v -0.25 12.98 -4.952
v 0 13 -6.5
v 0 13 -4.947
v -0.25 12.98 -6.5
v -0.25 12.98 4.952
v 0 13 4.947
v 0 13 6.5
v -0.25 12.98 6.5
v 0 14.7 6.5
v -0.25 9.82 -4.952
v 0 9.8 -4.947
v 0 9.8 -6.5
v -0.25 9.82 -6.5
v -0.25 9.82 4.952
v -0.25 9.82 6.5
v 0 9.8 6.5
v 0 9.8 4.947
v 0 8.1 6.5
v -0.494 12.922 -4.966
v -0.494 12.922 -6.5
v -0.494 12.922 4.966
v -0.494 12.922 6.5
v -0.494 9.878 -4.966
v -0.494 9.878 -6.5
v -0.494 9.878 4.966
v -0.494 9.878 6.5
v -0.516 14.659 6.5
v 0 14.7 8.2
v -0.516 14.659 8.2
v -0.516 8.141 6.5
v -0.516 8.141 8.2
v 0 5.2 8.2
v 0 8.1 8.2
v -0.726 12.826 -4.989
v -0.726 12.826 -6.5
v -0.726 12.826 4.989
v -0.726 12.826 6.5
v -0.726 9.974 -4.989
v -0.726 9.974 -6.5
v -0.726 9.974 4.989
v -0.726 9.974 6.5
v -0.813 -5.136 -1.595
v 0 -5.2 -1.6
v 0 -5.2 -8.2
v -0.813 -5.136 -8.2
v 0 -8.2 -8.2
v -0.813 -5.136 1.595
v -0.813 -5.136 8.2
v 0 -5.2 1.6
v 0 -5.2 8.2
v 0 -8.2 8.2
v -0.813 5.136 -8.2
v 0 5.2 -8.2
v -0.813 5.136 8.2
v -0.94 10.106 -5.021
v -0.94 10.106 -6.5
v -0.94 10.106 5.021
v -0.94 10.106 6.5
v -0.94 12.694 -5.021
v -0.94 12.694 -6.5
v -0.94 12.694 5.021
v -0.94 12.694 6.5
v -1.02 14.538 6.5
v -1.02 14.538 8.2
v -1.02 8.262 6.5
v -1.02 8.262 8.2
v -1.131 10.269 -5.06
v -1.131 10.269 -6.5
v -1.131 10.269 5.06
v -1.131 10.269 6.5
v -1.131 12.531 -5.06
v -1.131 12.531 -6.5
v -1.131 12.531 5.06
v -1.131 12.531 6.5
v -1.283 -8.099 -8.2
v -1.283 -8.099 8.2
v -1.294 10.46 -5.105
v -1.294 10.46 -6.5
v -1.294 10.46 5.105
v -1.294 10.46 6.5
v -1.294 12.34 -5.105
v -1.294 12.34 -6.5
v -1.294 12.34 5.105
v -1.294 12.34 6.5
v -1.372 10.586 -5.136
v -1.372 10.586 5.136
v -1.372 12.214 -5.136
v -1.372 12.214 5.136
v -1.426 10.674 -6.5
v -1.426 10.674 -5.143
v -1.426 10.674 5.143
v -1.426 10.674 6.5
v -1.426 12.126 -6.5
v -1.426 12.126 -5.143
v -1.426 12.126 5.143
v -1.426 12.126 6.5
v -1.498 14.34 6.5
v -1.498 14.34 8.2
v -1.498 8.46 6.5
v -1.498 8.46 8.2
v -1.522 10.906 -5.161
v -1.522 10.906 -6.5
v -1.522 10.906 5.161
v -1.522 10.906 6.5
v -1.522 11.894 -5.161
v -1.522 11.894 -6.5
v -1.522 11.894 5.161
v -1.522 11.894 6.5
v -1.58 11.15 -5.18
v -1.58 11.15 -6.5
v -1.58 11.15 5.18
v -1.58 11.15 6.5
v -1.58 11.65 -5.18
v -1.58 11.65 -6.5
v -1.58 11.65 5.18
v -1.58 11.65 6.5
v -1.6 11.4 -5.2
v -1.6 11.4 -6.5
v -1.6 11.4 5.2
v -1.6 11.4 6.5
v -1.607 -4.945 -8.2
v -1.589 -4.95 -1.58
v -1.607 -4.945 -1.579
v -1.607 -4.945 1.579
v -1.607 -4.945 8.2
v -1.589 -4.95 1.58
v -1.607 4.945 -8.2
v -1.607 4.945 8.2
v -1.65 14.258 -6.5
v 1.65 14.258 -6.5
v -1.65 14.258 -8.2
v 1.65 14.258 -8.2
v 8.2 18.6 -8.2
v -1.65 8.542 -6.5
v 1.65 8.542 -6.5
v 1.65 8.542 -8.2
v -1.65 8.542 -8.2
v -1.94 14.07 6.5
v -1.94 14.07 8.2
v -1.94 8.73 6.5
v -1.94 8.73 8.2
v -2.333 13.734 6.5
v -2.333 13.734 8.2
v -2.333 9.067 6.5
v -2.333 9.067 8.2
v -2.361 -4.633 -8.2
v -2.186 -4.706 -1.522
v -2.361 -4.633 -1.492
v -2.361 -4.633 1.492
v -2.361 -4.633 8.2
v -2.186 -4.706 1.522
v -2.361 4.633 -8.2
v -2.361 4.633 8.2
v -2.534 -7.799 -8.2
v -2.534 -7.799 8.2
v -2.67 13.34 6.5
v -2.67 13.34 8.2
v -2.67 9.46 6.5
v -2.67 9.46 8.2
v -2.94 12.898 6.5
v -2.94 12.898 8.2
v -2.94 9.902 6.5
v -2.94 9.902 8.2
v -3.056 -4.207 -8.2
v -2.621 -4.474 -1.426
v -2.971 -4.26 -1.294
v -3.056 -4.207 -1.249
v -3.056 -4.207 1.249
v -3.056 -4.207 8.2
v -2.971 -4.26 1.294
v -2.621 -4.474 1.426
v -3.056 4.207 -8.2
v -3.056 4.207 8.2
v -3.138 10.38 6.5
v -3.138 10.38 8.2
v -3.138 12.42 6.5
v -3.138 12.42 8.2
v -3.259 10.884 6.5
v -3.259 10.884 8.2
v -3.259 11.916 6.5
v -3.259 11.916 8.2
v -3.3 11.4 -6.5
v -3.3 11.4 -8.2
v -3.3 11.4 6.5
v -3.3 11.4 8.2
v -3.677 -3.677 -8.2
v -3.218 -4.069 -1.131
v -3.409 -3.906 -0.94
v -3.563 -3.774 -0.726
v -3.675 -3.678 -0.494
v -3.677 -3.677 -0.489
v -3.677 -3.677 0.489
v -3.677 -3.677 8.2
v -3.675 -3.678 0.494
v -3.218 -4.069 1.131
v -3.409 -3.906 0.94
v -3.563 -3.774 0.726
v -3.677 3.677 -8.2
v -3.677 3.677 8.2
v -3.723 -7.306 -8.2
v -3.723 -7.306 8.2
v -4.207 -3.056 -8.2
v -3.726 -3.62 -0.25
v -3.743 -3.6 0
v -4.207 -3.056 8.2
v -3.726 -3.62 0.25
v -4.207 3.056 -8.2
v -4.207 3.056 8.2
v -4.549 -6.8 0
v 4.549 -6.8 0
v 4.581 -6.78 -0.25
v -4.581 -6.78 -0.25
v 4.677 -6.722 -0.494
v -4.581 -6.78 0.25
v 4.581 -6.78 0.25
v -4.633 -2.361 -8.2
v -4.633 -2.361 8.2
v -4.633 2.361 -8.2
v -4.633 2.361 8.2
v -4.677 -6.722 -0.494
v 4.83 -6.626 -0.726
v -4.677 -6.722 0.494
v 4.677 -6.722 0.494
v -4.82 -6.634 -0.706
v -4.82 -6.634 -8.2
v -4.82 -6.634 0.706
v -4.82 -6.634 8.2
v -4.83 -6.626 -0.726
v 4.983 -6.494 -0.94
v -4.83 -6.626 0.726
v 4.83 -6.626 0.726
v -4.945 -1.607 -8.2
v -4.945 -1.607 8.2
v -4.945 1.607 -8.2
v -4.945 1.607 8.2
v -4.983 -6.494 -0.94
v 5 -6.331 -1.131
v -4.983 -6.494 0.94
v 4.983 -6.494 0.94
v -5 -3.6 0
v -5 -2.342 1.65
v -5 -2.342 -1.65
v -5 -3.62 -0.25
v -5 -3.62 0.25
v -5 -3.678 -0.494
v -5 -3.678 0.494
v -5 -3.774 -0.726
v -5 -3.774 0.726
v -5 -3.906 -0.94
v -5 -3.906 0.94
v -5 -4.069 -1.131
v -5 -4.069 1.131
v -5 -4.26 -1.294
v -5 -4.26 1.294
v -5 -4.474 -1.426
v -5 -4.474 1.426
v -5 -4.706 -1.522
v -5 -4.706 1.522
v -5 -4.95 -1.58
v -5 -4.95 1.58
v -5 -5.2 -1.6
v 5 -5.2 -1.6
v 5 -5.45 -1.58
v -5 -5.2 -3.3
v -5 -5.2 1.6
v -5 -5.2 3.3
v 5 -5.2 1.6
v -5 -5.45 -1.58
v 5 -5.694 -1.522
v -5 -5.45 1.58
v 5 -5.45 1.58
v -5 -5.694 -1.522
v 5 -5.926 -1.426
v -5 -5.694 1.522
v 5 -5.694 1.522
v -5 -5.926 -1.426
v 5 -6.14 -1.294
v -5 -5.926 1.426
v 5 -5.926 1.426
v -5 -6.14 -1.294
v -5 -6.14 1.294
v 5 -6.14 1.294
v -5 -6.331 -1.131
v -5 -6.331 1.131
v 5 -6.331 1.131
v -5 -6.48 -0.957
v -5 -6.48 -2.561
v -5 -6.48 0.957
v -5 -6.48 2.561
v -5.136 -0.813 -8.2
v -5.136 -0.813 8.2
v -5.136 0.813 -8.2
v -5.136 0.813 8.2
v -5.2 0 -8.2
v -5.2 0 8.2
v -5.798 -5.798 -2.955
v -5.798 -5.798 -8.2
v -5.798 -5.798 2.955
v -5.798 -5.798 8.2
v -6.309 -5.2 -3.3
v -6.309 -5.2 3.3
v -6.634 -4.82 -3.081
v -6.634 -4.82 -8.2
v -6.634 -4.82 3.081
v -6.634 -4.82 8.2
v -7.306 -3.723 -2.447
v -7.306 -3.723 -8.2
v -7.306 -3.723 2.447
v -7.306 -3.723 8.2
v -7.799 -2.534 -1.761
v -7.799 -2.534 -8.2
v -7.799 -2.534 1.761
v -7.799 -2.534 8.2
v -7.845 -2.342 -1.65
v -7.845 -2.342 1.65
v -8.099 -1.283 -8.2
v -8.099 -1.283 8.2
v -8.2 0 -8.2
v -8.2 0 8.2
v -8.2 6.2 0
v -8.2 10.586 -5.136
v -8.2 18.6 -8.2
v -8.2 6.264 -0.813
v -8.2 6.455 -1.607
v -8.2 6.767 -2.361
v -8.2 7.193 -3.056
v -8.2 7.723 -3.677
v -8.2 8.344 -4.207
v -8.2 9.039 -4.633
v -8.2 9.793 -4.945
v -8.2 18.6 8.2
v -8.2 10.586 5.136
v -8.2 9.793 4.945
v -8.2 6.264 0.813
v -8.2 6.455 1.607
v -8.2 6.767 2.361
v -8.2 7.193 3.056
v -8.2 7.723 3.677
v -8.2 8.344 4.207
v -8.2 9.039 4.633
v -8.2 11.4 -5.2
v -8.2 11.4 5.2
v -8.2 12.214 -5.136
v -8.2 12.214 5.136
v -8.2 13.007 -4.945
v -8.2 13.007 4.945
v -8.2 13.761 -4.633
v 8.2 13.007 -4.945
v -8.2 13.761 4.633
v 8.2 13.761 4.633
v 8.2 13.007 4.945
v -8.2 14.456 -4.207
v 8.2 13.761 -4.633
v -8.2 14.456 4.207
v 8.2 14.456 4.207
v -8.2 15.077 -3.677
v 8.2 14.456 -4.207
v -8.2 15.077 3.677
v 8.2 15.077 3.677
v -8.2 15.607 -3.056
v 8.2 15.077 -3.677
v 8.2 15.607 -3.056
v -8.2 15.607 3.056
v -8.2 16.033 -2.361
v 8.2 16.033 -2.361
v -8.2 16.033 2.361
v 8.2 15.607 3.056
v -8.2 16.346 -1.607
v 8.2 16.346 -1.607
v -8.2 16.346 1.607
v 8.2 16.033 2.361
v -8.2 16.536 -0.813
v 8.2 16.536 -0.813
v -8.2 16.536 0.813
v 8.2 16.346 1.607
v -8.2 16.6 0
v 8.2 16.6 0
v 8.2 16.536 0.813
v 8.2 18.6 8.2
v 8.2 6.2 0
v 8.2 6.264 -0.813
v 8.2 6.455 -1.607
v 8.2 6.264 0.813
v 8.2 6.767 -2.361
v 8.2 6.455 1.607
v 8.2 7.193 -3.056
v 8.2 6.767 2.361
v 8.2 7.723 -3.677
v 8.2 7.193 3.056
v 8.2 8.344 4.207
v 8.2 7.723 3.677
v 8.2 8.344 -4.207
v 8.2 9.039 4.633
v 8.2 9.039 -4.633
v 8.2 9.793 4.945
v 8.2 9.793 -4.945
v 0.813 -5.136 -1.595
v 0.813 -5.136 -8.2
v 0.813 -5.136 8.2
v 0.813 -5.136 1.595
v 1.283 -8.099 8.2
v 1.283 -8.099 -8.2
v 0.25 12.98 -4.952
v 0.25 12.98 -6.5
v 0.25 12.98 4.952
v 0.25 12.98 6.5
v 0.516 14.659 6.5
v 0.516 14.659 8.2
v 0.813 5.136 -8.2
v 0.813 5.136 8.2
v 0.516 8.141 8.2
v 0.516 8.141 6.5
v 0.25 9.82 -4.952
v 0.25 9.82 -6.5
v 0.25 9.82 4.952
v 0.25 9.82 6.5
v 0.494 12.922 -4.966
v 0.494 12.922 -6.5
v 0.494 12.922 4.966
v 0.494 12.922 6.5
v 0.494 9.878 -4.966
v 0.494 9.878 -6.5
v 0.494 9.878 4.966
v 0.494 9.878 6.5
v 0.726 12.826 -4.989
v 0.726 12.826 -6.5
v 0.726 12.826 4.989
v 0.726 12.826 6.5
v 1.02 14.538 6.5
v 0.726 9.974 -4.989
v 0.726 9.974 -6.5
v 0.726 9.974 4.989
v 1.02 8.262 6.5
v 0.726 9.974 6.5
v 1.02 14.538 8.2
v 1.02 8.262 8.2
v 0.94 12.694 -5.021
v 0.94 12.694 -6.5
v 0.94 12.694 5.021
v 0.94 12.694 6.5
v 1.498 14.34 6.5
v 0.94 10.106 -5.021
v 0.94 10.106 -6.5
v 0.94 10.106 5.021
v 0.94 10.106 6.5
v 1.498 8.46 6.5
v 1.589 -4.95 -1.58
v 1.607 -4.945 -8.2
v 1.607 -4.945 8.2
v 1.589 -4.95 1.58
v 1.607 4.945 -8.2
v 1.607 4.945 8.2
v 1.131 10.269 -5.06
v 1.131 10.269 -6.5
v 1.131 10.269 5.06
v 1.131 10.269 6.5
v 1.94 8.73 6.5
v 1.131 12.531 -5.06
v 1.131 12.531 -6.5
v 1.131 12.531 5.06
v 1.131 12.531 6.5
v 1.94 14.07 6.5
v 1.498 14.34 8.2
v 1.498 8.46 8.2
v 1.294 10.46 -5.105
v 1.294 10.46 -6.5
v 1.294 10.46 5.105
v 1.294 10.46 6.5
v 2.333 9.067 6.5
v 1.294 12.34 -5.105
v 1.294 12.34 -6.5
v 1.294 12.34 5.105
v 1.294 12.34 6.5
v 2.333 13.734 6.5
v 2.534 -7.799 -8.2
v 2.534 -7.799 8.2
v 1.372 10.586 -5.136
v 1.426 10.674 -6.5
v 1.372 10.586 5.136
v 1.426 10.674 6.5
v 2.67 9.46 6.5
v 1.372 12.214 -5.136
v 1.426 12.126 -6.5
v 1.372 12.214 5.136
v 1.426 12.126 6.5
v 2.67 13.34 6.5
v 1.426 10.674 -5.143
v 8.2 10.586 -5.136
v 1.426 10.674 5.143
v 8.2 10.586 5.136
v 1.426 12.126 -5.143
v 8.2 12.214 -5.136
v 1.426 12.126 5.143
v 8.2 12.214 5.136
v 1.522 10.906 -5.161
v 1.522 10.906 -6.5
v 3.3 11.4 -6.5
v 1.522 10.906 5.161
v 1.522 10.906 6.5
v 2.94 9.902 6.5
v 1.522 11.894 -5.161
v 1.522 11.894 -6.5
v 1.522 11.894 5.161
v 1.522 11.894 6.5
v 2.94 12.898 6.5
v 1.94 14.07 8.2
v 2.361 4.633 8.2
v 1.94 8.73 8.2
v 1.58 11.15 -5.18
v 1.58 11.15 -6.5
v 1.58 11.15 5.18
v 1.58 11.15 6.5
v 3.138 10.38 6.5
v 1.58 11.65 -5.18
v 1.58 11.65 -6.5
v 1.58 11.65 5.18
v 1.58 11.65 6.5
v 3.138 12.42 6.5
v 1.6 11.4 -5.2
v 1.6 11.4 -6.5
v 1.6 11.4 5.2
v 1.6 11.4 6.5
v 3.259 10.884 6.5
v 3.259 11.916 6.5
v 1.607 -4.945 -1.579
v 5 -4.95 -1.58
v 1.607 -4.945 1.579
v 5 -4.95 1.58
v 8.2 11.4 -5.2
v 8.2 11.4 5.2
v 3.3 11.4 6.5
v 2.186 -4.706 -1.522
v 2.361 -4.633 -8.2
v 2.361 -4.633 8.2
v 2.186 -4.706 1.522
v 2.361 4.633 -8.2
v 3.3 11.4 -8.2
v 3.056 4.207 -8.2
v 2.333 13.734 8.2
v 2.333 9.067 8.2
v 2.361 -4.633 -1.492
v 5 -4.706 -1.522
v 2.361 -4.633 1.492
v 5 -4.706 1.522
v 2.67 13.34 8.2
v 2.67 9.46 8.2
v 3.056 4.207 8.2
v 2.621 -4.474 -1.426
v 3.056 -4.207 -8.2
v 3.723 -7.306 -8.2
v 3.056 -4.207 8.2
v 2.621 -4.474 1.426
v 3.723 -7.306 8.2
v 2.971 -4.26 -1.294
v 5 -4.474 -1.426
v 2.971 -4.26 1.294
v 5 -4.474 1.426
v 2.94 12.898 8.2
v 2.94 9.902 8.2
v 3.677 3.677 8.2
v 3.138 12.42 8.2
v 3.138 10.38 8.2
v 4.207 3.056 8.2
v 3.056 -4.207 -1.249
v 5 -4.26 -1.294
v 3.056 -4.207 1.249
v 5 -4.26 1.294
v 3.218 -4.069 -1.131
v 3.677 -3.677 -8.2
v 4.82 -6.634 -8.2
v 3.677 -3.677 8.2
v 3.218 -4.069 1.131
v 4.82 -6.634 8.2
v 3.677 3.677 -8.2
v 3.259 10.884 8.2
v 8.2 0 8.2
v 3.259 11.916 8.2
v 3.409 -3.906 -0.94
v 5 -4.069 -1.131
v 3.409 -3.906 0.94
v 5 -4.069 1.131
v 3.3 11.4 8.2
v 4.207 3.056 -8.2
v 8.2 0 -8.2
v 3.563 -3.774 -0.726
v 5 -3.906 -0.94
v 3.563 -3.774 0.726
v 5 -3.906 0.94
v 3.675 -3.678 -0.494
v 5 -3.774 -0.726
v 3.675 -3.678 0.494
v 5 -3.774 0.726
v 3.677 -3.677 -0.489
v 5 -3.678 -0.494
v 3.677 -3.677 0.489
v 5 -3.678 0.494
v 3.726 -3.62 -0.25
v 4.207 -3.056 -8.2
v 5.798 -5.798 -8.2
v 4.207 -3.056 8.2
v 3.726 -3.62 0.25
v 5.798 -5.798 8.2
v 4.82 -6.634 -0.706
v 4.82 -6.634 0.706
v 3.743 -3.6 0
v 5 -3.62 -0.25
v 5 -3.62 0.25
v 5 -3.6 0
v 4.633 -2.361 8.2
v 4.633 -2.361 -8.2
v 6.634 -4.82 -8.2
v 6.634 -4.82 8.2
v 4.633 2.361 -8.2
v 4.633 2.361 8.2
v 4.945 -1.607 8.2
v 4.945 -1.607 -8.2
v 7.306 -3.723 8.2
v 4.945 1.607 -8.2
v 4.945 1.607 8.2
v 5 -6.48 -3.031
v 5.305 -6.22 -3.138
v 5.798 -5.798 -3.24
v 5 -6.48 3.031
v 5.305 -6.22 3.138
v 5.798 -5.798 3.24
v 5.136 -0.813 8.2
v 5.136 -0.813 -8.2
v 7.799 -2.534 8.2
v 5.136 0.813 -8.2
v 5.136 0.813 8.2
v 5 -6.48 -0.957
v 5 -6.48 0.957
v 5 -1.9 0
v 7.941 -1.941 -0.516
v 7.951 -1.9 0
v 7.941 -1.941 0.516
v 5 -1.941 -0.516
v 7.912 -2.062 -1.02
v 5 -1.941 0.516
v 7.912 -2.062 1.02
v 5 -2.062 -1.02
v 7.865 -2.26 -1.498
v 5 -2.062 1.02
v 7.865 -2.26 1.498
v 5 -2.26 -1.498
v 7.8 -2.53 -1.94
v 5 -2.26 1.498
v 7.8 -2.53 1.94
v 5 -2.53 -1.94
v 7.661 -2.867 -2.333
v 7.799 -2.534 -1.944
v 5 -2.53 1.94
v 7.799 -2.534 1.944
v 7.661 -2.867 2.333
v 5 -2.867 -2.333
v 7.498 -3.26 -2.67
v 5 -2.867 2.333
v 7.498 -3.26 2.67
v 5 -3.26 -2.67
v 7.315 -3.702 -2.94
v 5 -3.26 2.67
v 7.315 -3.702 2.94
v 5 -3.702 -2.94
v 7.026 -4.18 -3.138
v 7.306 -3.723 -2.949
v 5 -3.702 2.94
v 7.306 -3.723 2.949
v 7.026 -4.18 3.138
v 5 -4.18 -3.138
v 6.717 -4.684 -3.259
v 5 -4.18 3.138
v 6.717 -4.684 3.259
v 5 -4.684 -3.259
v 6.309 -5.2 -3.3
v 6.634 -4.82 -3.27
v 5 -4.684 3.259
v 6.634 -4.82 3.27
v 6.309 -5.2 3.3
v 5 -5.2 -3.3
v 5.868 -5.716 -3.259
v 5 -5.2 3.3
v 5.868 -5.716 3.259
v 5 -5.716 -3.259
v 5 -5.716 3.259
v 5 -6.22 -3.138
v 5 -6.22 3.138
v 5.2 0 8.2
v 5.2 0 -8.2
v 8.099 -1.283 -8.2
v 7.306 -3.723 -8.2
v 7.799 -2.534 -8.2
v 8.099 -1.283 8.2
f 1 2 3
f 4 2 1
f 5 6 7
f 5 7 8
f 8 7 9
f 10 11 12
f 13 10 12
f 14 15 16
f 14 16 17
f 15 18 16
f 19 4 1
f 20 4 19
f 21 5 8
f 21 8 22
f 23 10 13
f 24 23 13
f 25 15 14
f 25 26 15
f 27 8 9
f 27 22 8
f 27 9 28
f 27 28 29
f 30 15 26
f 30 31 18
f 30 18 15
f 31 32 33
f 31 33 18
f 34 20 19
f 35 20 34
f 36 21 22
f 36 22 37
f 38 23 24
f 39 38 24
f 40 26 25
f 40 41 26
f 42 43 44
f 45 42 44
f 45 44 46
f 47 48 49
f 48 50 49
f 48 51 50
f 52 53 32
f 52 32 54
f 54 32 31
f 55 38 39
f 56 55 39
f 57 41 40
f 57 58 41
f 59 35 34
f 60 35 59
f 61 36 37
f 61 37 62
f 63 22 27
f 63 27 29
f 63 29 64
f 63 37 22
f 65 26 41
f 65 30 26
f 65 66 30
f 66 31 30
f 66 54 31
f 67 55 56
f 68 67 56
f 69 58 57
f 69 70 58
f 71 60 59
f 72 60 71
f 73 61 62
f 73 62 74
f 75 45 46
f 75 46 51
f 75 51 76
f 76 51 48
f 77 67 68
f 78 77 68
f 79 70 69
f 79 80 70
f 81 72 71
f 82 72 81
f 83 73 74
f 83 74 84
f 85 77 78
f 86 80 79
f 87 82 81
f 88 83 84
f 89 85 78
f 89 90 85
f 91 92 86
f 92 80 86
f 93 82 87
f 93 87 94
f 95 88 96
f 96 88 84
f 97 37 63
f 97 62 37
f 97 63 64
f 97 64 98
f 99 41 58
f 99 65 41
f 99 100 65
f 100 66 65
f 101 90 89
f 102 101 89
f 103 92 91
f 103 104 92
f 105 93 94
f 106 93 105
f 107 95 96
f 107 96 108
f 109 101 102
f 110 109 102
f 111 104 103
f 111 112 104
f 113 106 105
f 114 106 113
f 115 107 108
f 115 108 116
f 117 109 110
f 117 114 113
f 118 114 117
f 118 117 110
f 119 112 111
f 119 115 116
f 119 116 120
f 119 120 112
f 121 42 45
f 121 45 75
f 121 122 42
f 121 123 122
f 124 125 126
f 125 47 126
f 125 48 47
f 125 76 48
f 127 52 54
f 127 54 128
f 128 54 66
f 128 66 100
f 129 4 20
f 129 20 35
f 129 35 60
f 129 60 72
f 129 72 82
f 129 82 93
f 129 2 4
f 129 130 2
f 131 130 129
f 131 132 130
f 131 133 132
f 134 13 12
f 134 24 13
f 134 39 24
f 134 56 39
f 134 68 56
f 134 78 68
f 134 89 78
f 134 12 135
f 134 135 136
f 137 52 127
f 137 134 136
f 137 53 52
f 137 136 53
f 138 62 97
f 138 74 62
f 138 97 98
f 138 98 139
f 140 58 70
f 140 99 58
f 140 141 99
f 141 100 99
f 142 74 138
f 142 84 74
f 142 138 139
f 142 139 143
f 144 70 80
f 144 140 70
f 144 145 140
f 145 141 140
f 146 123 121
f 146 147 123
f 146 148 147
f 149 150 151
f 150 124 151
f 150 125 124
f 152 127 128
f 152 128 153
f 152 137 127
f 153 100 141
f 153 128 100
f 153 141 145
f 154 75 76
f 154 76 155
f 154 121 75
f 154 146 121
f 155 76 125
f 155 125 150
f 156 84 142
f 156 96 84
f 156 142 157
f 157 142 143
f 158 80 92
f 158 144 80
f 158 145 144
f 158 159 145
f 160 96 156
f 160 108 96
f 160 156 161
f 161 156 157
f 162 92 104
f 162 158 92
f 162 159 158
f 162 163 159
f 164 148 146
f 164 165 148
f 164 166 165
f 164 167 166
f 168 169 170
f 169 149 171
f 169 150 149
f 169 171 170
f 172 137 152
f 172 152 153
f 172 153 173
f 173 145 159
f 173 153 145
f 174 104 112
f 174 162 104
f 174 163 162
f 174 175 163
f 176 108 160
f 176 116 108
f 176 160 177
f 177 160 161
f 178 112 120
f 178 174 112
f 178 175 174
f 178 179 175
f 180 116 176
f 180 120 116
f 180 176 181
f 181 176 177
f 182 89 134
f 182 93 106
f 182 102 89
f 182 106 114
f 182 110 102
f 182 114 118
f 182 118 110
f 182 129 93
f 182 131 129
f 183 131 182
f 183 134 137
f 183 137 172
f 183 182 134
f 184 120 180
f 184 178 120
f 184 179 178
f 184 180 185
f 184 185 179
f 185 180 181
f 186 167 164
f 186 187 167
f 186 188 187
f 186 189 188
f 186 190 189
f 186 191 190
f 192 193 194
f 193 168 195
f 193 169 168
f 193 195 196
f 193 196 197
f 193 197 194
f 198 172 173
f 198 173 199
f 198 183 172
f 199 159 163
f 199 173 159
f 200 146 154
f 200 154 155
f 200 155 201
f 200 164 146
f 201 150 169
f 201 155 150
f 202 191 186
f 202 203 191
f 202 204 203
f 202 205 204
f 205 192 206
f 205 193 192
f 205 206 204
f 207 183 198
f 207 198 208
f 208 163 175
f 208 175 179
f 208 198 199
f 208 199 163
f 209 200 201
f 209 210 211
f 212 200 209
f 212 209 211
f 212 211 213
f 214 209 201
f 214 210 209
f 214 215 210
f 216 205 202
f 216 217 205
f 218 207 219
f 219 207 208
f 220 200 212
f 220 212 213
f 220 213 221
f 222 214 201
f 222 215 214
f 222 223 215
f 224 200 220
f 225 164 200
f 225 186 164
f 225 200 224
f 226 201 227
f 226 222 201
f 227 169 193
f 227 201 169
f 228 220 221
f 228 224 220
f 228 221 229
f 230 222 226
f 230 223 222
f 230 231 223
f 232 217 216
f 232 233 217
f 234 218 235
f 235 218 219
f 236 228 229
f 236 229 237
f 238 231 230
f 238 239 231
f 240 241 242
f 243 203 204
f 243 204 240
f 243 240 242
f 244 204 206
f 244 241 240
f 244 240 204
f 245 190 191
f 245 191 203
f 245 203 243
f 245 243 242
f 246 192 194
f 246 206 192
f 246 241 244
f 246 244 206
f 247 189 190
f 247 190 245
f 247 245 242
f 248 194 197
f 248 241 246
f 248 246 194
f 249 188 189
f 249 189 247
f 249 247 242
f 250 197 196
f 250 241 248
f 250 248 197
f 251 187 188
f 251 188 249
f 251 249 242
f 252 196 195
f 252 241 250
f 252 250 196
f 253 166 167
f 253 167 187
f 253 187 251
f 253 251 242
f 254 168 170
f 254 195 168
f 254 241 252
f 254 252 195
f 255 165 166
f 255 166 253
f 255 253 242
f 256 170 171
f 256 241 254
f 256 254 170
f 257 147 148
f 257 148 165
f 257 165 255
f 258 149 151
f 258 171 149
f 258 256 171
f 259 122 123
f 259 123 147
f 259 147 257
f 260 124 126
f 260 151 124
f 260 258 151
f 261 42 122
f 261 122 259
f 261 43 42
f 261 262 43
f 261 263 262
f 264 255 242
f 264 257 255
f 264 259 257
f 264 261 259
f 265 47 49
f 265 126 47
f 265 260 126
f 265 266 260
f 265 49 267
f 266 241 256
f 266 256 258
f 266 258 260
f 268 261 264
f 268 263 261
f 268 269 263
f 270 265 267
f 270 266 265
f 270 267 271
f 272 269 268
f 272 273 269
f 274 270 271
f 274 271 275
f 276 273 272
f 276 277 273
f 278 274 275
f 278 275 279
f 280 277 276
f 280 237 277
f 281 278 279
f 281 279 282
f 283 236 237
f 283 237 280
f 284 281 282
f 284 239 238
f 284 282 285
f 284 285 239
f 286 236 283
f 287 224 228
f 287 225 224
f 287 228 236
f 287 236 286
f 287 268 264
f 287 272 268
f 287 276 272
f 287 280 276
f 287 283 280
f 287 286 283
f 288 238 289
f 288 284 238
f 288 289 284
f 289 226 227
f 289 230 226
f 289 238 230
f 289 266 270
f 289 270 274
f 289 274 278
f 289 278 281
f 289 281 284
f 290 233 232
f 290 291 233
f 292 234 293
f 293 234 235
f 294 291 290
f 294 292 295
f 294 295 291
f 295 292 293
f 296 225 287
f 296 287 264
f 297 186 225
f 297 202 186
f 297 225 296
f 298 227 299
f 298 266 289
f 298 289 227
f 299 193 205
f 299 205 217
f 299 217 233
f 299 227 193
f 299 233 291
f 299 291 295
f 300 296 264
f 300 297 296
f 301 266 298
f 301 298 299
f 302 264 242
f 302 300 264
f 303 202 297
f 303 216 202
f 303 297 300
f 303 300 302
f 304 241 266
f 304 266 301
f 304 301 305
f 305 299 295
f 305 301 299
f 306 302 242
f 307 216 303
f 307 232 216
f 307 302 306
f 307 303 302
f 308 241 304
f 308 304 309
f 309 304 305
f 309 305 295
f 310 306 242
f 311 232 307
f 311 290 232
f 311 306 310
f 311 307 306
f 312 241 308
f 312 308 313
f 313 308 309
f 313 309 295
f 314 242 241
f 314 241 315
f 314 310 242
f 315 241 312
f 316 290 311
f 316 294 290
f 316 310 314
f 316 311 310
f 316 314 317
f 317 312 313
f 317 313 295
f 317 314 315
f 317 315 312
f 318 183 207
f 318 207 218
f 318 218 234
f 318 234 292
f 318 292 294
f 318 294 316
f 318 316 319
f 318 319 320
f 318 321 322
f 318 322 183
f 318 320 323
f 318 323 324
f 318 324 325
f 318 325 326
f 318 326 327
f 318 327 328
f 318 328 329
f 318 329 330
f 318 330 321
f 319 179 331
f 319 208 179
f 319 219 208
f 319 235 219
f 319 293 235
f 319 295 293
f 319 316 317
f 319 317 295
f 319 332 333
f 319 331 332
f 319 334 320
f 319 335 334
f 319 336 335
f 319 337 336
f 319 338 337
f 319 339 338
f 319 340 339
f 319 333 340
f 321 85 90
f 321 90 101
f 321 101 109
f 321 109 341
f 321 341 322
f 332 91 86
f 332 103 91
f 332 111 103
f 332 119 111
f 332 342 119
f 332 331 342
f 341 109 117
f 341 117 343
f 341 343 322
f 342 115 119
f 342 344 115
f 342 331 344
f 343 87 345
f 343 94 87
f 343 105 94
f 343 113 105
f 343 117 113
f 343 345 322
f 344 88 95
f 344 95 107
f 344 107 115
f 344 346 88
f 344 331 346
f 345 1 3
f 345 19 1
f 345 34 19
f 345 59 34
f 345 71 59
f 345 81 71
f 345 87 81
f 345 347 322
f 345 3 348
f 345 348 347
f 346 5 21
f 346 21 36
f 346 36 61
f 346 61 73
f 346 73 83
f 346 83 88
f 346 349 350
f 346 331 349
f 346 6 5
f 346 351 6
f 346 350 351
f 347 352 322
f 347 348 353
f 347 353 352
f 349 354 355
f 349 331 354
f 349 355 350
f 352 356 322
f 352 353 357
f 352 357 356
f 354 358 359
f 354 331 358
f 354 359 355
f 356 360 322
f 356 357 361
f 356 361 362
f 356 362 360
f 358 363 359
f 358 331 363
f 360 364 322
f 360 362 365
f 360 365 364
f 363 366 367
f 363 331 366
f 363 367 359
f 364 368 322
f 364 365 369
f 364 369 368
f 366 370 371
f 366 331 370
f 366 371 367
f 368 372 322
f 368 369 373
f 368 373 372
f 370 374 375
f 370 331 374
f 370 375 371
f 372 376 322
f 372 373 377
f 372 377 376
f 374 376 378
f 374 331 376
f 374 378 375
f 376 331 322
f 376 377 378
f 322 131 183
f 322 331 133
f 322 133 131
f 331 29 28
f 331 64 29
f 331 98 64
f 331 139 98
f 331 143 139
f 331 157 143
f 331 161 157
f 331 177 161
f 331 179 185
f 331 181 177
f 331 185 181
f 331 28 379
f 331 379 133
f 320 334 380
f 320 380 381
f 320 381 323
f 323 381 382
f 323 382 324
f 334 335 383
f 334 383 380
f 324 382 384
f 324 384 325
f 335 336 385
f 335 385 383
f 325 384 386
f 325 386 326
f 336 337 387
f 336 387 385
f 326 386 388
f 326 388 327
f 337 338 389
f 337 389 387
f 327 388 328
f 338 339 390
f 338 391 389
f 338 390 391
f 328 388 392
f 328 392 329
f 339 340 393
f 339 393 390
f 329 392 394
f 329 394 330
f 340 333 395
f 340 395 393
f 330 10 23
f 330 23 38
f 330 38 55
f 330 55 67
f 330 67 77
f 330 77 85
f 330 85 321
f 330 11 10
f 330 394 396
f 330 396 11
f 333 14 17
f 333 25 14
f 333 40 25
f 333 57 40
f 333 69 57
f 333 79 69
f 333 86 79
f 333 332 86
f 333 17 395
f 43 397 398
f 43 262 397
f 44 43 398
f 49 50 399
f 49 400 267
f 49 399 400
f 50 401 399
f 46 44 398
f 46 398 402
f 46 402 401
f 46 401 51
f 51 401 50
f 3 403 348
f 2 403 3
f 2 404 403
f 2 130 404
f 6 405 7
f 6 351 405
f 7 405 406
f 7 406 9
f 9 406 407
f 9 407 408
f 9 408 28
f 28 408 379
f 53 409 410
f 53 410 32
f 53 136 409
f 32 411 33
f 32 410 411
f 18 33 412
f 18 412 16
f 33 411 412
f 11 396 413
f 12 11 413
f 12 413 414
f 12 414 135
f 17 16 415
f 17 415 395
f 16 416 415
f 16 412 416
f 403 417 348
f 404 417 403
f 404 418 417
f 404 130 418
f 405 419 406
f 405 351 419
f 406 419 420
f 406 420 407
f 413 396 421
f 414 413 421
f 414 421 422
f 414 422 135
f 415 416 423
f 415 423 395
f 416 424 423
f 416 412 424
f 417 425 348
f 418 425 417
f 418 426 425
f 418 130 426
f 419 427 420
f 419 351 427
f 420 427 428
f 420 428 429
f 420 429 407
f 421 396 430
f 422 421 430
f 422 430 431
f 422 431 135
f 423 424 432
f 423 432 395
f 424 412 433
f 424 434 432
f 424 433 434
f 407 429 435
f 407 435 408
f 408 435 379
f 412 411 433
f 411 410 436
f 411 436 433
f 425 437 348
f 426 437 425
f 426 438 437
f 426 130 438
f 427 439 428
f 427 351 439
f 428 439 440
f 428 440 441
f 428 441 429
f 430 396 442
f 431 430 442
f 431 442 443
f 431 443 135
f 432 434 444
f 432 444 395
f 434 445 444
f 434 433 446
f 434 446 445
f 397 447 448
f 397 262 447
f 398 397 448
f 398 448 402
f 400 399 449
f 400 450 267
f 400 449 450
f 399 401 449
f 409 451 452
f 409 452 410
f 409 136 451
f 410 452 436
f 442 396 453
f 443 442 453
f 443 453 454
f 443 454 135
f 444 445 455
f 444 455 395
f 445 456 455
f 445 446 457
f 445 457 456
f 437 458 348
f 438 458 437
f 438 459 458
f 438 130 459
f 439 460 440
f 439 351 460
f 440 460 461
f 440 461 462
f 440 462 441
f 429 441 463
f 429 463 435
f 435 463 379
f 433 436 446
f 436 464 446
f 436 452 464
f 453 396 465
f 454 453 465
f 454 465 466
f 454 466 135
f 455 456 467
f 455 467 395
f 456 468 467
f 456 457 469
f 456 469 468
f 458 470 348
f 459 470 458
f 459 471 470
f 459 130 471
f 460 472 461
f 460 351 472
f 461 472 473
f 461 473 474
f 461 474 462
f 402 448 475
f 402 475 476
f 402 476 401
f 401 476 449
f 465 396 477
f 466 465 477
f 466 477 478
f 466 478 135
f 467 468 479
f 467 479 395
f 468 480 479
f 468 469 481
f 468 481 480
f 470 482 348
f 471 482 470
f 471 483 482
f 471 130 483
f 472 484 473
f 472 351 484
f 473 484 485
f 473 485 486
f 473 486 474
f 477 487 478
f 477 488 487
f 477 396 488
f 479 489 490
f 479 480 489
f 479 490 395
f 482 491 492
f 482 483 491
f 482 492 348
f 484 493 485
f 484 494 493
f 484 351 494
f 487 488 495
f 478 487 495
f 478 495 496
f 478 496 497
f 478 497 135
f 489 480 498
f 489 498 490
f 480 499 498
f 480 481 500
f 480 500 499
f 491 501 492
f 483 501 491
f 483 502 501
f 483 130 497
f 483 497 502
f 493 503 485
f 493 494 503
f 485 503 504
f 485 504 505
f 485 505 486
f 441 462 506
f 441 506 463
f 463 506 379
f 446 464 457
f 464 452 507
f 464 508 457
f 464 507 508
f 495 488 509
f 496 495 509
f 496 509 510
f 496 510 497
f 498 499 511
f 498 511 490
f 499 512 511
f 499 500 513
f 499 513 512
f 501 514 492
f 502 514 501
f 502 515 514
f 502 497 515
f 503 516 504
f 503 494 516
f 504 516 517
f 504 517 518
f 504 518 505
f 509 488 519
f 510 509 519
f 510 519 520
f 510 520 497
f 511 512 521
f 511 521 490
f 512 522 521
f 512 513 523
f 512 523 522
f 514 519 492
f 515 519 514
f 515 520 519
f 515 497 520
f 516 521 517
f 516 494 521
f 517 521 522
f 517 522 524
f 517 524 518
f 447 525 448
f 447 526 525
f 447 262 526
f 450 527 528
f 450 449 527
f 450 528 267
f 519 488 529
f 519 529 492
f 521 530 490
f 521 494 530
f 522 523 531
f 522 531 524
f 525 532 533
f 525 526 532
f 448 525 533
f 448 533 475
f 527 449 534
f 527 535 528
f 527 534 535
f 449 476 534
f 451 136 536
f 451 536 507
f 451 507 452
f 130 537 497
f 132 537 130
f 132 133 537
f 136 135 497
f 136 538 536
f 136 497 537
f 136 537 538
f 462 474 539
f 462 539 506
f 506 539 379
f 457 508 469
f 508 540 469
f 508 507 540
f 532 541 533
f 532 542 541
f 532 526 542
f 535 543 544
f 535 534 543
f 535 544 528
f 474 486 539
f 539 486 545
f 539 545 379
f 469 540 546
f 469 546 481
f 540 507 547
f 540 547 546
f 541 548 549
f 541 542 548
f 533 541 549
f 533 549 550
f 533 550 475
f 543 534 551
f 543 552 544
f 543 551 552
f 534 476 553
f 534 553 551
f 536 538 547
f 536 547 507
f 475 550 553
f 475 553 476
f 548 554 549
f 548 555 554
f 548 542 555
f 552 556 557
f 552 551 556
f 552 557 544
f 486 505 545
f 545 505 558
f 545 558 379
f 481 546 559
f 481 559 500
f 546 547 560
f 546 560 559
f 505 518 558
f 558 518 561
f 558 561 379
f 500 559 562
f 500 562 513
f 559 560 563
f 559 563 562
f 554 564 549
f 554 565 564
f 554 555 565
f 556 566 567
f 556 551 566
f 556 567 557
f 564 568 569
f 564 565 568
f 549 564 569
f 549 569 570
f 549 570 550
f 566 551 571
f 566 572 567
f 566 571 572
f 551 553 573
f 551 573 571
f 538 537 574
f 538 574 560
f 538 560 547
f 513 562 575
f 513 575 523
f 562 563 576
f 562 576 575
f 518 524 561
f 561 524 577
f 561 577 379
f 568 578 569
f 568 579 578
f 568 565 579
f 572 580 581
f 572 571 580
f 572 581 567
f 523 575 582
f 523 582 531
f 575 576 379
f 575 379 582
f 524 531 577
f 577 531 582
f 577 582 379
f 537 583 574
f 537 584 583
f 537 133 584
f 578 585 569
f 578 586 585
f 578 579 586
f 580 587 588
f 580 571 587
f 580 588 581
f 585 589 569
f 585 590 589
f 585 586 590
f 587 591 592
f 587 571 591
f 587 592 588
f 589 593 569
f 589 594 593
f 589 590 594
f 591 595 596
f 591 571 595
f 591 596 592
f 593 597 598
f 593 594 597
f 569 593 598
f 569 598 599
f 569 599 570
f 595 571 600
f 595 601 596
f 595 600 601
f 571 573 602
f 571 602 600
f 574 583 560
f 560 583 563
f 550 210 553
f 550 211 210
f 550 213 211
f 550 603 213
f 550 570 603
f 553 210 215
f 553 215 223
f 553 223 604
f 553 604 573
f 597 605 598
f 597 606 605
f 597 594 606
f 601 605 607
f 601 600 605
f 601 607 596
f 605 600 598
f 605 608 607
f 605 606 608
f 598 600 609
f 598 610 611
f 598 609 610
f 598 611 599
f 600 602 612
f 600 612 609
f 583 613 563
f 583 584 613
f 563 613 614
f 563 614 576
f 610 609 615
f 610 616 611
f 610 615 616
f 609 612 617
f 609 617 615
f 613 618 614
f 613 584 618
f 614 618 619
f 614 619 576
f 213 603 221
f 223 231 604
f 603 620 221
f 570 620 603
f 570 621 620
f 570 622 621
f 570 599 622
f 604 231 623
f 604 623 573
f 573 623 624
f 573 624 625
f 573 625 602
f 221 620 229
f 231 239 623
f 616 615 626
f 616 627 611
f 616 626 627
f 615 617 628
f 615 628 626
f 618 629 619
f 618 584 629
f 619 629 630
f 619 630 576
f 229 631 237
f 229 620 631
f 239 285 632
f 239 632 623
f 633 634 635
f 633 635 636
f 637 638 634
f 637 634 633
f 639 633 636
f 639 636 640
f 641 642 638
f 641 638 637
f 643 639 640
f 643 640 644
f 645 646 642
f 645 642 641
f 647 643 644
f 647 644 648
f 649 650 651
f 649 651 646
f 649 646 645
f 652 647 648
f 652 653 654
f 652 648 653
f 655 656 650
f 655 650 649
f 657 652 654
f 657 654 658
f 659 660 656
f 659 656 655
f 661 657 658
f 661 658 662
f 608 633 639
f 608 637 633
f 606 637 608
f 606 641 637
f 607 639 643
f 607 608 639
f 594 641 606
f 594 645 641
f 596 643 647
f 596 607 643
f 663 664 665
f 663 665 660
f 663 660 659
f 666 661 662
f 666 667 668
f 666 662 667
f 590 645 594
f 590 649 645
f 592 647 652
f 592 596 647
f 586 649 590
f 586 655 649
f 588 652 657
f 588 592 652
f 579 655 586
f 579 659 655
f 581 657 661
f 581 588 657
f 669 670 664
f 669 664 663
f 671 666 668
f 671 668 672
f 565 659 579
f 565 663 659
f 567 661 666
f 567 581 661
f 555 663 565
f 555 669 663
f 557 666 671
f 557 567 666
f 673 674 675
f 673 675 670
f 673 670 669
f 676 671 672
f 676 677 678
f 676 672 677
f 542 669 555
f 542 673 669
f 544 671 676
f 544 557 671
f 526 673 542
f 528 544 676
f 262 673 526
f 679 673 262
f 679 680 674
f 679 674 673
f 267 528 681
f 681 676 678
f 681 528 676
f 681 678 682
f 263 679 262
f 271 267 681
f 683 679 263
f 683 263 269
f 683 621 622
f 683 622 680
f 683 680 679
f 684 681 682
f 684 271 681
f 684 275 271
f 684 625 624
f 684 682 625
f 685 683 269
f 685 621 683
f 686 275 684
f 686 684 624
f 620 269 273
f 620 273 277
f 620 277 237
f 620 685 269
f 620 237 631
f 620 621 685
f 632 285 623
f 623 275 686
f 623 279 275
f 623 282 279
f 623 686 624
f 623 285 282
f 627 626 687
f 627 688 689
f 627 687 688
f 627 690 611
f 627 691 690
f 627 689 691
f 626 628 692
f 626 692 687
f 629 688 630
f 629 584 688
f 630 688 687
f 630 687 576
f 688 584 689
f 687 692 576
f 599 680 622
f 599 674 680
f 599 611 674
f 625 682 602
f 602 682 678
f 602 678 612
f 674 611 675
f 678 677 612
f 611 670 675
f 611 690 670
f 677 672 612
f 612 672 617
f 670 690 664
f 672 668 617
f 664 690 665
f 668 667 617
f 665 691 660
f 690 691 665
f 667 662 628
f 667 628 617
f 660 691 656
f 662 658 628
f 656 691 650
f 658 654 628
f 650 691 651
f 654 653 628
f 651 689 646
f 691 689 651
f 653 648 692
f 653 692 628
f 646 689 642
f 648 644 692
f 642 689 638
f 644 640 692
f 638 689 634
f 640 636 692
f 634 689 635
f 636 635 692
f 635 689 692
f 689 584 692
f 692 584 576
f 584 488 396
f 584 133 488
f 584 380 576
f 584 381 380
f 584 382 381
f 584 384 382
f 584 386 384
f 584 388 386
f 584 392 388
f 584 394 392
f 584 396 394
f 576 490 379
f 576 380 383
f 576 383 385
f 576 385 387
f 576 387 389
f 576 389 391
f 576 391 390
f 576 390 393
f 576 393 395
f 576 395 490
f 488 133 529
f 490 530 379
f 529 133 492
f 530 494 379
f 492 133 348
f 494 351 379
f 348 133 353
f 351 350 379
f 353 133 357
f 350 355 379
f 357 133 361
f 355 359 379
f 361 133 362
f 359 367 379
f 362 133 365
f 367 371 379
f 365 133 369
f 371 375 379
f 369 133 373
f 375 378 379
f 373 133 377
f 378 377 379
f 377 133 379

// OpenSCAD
// file: 888_1000.scad
/*
// Nastavení zobrazení
$vpr = [338, 0, 357];
$vpt = [180, 25, -18];
$vpd = 1280;
*/
//improving rendering speed.
draft = true;   // sets rendering quality to draft.
$fs = draft ? 5 : 0.5;
$fa = 10;

/*
TODO: 

Přední díl obsahuje převis ve směru vybrání pro držák motoru. (U horního zámku)
Otvory pro šrouby v předním dílu jsou oválné, protože nejsou kolmo k rovině modelu.


*/




//vnitřní kapka
module hollowing_skeleton(shell_thickness = hull_wall_thickness, draft)
{

    beta = 90 - trailing_edge_angle(naca = hull_airfoil_thickness); // calculate the angle of trailing edge
    trailing_wall= 1/(cos(beta)); //calculate lenght of wall cut relative to wall thickness 

    intersection () {
    resize([hull_drop_length - shell_thickness - trailing_wall* shell_thickness, (hull_drop_length*hull_airfoil_thickness/100) - 2*shell_thickness, (hull_drop_length*hull_airfoil_thickness/100) - 2*shell_thickness], auto=true)
            rotate ([0,90,0])           
            rotate_extrude($fn = draft ? 50 : 100)
                rotate([0,0,90])
                    difference()
                    {
                      polygon(points = airfoil_data(naca=hull_airfoil_thickness, L = hull_drop_length, N=draft ? 50 : 200)); 
                      square(hull_drop_length); 
                    }
                    
      translate([0,0,hull_corner_radius])
        minkowski(){                   
            translate ([0,- hull_y_size , - hull_z_size/2 + shell_thickness])
                cube ([hull_x_size,2*hull_y_size - shell_thickness, hull_z_size - 2*shell_thickness - 2*hull_corner_radius]);
                rotate ([0,90,0])
                    cylinder (h = 1, r = hull_corner_radius, $fn = draft ? 50 : 100);                   
          }
                            
    }
}

module hollowing_skeleton_hem(ribbon_width, draft)
{

    beta = 90 - trailing_edge_angle(naca = hull_airfoil_thickness); // calculate the angle of trailing edge
    trailing_wall= 1/(cos(beta)); //calculate lenght of wall cut relative to wall thickness 

    intersection () {
    resize([hull_drop_length - ribbon_width - trailing_wall* ribbon_width, (hull_drop_length*hull_airfoil_thickness/100) - 2*ribbon_width, (hull_drop_length*hull_airfoil_thickness/100) - 2*ribbon_width], auto=true)
            rotate ([0,90,0])           
            rotate_extrude($fn = draft ? 50 : 100)
                rotate([0,0,90])
                    difference()
                    {
                      polygon(points = airfoil_data(naca=hull_airfoil_thickness, L = hull_drop_length, N=draft ? 50 : 200)); 
                      square(hull_drop_length); 
                    }
                    
      translate([0,0,hull_corner_radius])
        minkowski(){                   
            translate ([0,- hull_y_size, - hull_z_size/2 + ribbon_width])
                cube ([hull_x_size,2*hull_y_size - ribbon_width, hull_z_size - 2*ribbon_width - 2*hull_corner_radius]);
                rotate ([0,90,0])
                    cylinder (h = 1, r = hull_corner_radius, $fn = draft ? 50 : 100);                   
          }
                            
    }
}




//celá kapka
module drop(draft = true)
{

    beta = 90 - trailing_edge_angle(naca = hull_airfoil_thickness); // calculate the angle of trailing edge
    trailing_wall= 1/(cos(beta)); //calculate lenght of wall cut relative to wall thickness 

	intersection () {
    	rotate ([0,90,0])           
        	rotate_extrude($fn = draft ? 50 : 100)
                    rotate([0,0,90])
                        difference()
                        {
	                        polygon(points = airfoil_data(naca=hull_airfoil_thickness, L =hull_drop_length , N=draft ? 50 : 200)); 
    	                    square(hull_drop_length); 
        	            }
            		
        translate([0,0,hull_corner_radius])
          	minkowski(){                   
             	translate ([0,-hull_y_size,-hull_z_size/2])
             			cube ([hull_x_size, 2*hull_y_size,hull_z_size-2*hull_corner_radius]);
             	  	rotate ([0,90,0])
                 		cylinder (h = 1, r = hull_corner_radius, $fn = draft ? 50 : 100);                   
		    }
		    
	}
}


//základní kapka
module drop_skin(draft){

	difference(){
			drop();
		translate([hull_wall_thickness,0,0])
			hollowing_skeleton();
	}

}




drop_skin();














use <./lib/naca4.scad>
include <../Parameters.scad>
// file: ../Parameters.scad
//Main tube diameter - hole [mm]
main_tube_outer_diameter = 25.4;
main_tube_inner_diameter = 23.5;

//Tube for undercarriage - hole [mm]
tube_for_undercarriage_outer_diameter = 10.6;
tube_for_undercarriage_inner_diameter = 6;
global_clearance = 0.5;


//umístění podvozkových trubek

second_undercarriage_hole = main_tube_outer_diameter*2 + main_tube_outer_diameter/5 + main_tube_outer_diameter/2 + 170 + 160;

// Parameters of cube couplings
coupling_wall_thickness = main_tube_outer_diameter/5;  //width of coupling walls 
thickness_between_tubes = main_tube_outer_diameter/10;    // minimum distance between tubes in couplings

coupling_wall_thickness_undercarriage = tube_for_undercarriage_outer_diameter/3;
thickness_between_tubes_undercarriage = tube_for_undercarriage_outer_diameter/10;

//Screw diameter and nut for M4 [mm]
M4_screw_diameter=4.5;
Nut_height_M4 = 3.2;
Nut_diameter_M4 = 7.86;


//Screw diameter and nut for M3 [mm]
M3_screw_diameter = 3.2;
Nut_height_M3 = 1.7;	
Nut_diameter_M3 = 6.6; 


//The tube for help
Help_main_tube_outer = 25;
Help_main_tube_inner = 23; 
Help_tube_for_undercarriage_outer = 10;
Help_tube_for_undercarriage_inner = 5;


//main hull parameters

hull_drop_length = 580;
hull_wall_thickness = 0.8;
hull_y_size = 120;
hull_z_size = 150;
hull_x_size = 580;
hull_corner_radius = 4;
hull_airfoil_thickness= 35;  // thickness of drop generating airfoil in percent of lenght.
hull_scale_x = 1;
hull_scale_y = 1.5;
hull_scale_z = 1.5;

main_pilon_position = 170+68;
cover_pilon_position = 180;
height_of_vertical_tube = 275; //278mm je změřená délka trubky. 

ribbon_width = 5; // šířka vyztužovacích lemů. 

// šířka otvoru v přední části kapoty pro držák motoru.
width_of_engine_holder = 63;

//Top Cover Division - dělení horního krytu pro tisk
top_cover_division = [0, 50, 150, 280, 410, hull_x_size]; // upraveny seznam tak, aby deleni začinalo od nuly, což umožňí úplně automatické rozdělení.

//Bottom Cover Division - dělení dolního krytu pro tisk
bottom_cover_division = [0,100,250,365, 470, hull_x_size];
// zkrácená část pro payload pro testovací tisk
//bottom_cover_division = [0,200,250,365, 470, hull_x_size];

//Base Divison - dělení podložky
base_division = [0,140,280,410, hull_x_size];

//Cover pilon division - na výšku (v ose Z)
cover_pilon_division = [0,170,height_of_vertical_tube + main_tube_outer_diameter + coupling_wall_thickness];

//pozice šroubů
	//horní kryt
top_screw_position = [0, (top_cover_division[0] + top_cover_division[1])/4, (top_cover_division[2] - top_cover_division[1])/2 + top_cover_division[1], (top_cover_division[3] - top_cover_division[2])/2 + top_cover_division[2],(top_cover_division[4] - top_cover_division[3])/2 + top_cover_division[3],(top_cover_division[5] - top_cover_division[4])/2 + top_cover_division[4] - 20];
	//spodní kryt
bottom_screw_position = [0,(bottom_cover_division[0] + bottom_cover_division[1])/15 + 5, bottom_cover_division[1]/1.1, + bottom_cover_division[3], bottom_cover_division[3] + bottom_cover_division[1]/2, bottom_cover_division[4] - 6*global_clearance, bottom_cover_division[4] + bottom_cover_division[1]/2.5];




//šířka zámků
lock_width = 10;

//délka zámků
lock_length = 3;


//accumulator
//základní rozměry akumulátoru
width_of_accumulator = 129.4;//45+1;
depth_of_accumulator = 40.61;
height_of_accumulator = 43.65;
//Zapuštění akumulátoru
sink_of_accumulator = 5; //main_tube_outer_diameter/5 - Nut_height_M3*1.5;

//tloušťka hrany spojky
accumulator_holder_width = 18; 
accumulator_holder_thickness = 10; 

//posunutí akumálátoru na podložce
move_of_accumulator = 165;   // pozice akumulátoru (ovlivňuje těžiště)


////////////////
// Senzory
///////////////////

//opticalFlow
    width_optical_flow_senzor = 45.5;
    depth_optical_flow_senzor = 6;
    height_optical_flow_senzor = 35;
    sink_of_optical_flow_senzor = depth_optical_flow_senzor - 5; 
    M3_optical_flow_senzor_Z = 30.4;
    M3_optical_flow_senzor_X = 24;
    M3_optical_flow_senzor_Z_alone = 9.1;
    M3_optical_flow_senzor_X_alone = 16.7;
// file: lib/naca4.scad
// Naca4.scad - library for parametric airfoils of 4 digit NACA series
// Code: Rudolf Huttary, Berlin 
// June 2015
// commercial use prohibited


// general use: for more examples refer to sampler.scad
// naca = naca digits or 3el vector  (default = 12 or [0, 0, .12])
// L    = chord length [mm]      (default= 100)
// N    = # sample points        (default= 81)
// h    = height [mm]            (default= 1)
// open = close at the thin end? (default = true)
// two equivalent example calls
 airfoil(naca = 2408, L = 60, N=1001, h = 30, open = false); 
// airfoil(naca = [.2, .4, .32], L = 60, N=1001, h = 30, open = false); 

module help()
{
  echo(str("\n\nList of signatures in lib:\n=================\n", 
  "module airfoil(naca=2412, L = 100, N = 81, h = 1, open = false) - renders airfoil object\n", 
  "module airfoil(naca=[.2, .4, .12], L = 100, N = 81, h = 1, open = false) - renders airfoil object using percentage for camber,  camber distance and thicknes\n", 
  "function airfoil_data(naca=12, L = 100, N = 81, open = false)\n",
  "=================\n")); 
}

help(); 
// this is the object
module airfoil(naca=12, L = 100, N = 81, h = 1, open = false)
{
  linear_extrude(height = h)
  polygon(points = airfoil_data(naca, L, N, open)); 
}

module hollow_airfoil(lnaca=12, L = 100, N = 81, h = 1, open = false, wall_thickness = 1)
{
    if (open){
        linear_extrude(height = h)

        if (wall_thickness>0){
            difference(){
                polygon(points = airfoil_data(naca, L, N, false));
                offset(delta = - wall_thickness, chamfer = false) polygon(points = airfoil_data(naca, L, N, open = false));
            }
        }
        else{
            difference(){
                offset(delta = - wall_thickness, chamfer = false) polygon(points = airfoil_data(naca, L, N, open = false));
                polygon(points = airfoil_data(naca, L, N, false));
            }
        }
    }
    else{

        linear_extrude(height = abs(wall_thickness))
            polygon(points = airfoil_data(naca, L, N, false)); 

        linear_extrude(height = h)
            difference(){
                polygon(points = airfoil_data(naca, L, N, open));
                offset(delta = - wall_thickness) polygon(points = airfoil_data(naca, L, N, open = false));
            }

        translate([0,0, h - wall_thickness])
            linear_extrude(height = abs(wall_thickness))
                polygon(points = airfoil_data(naca, L, N, false)); 

    }
}


// this is the main function providing the airfoil data
function airfoil_data(naca=12, L = 100, N = 81, open = false) = 
  let(Na = len(naca)!=3?NACA(naca):naca)
  let(A = [.2969, -0.126, -.3516, .2843, open?-0.1015:-0.1036])
  [for (b=[-180:360/(N):179.99]) 
    let (x = (1-cos(b))/2)  
    let(yt = sign(b)*Na[2]/.2*(A*[sqrt(x), x, x*x, x*x*x, x*x*x*x])) 
    Na[0]==0?L*[x, yt]:L*camber(x, yt, Na[0], Na[1], sign(b))];  


function trailing_edge_angle(naca=12, open = false) = 
  let(Na = len(naca)!=3?NACA(naca):naca)
  let(A = [.2969, -0.126, -.3516, .2843, open?-0.1015:-0.1036])
  let (x =0.999)  // set x near to airfoil trailing edge
  let(yt = Na[2]/.2*(A*[sqrt(x), x, x*x, x*x*x, x*x*x*x])) // calculate distance from x-axis at previously set position
  atan2(yt,1-x);  // calculate angle of triangle between end of airfoil. The triange height corresponds to previously calculated distance from x-axis

function surface_angle(x = 0.5, naca=12, open = false) = 
  let(Na = len(naca)!=3?NACA(naca):naca)
  let(A = [0.2969, -0.126, -0.3516, 0.2843, open?-0.1015:-0.1036])
  let(dy = Na[2]/0.2*(A*[(1/2)*(1/sqrt(x)), 1, 2*x, 3*x*x, 4*x*x*x])) // calculate derivative of airfoil function at the x point
  atan(dy);  // calculate  the angle from function derivative

function surface_distance(x = 0.5, naca=12, open = false) = 
  let(Na = len(naca)!=3?NACA(naca):naca)
  let(A = [0.2969, -0.126, -0.3516, 0.2843, open?-0.1015:-0.1036])
  Na[2]/.2*(A*[sqrt(x), x, x*x, x*x*x, x*x*x*x]); // calculate distance from x-axis at previously set position

// helper functions
function NACA(naca) = 
  let (M = floor(naca/1000))
  let (P = floor((naca-M*1000)/100)) 
  [M/100, P/10, floor(naca-M*1000-P*100)/100];  

function camber(x, y, M, P, upper) = 
  let(yc = (x<P)?M/P/P*(2*P*x-x*x): M/(1-P)/(1-P)*(1 - 2*P + 2*P*x -x*x))
  let(dy = (x<P)?2*M/P/P*(P-x):2*M/(1-P)/(1-P)*(P-x))
  let(th = atan(dy))
  [upper ? x - y*sin(th):x + y*sin(th), upper ? yc + y*cos(th):yc - y*cos(th)];
// main file
// patka pro pridelani predni tyce pylonu k nosniku
include <../parameters.scad>
use <888_1004.scad>

$fn = 40;
draft = true;

module 888_1032(){
    difference(){
        hull(){
            cylinder(d = tube_for_undercarriage_outer_diameter + 2* beam_min_wall, h = tube_for_undercarriage_outer_diameter + 2*beam_min_wall, center = true);
            translate([0, tube_for_undercarriage_outer_diameter, 0])
                cube([tube_for_undercarriage_outer_diameter+2*beam_min_wall, tube_for_undercarriage_outer_diameter+2*beam_min_wall, tube_for_undercarriage_outer_diameter + 2*beam_min_wall], center = true);
        }

        cylinder(d = tube_for_undercarriage_outer_diameter, h = tube_for_undercarriage_outer_diameter+2*beam_min_wall, center = true);
        translate([0, tube_for_undercarriage_outer_diameter + beam_vertical_space_between_pipes, 0])
            rotate([0, 90, 0])
                cylinder(d = tube_for_undercarriage_outer_diameter, h = tube_for_undercarriage_outer_diameter+2*beam_min_wall, center = true);

        // otvory pro srouby
        translate([0, tube_for_undercarriage_outer_diameter + beam_vertical_space_between_pipes, 0]){
            cylinder(d = M3_screw_diameter, h = 20, center = true);

            translate([0, 0, 6.5])
                cylinder(d = M3_nut_diameter, h = 20);

            translate([0, 0, -20-6.5])
                cylinder(d = M3_nut_diameter, h = 20, $fn = 6);
        }


        translate([0, -tube_for_undercarriage_outer_diameter/2, 0])
            rotate([0, 90, 0]){
                cylinder(d = M3_screw_diameter, h = 20, center = true);

                translate([0, 0, 5])
                    cylinder(d = M3_nut_diameter, h = 20);

                translate([0, 0, -20-5])
                    cylinder(d = M3_nut_diameter, h = 20, $fn = 6);
            }
    }
}

888_1032();
